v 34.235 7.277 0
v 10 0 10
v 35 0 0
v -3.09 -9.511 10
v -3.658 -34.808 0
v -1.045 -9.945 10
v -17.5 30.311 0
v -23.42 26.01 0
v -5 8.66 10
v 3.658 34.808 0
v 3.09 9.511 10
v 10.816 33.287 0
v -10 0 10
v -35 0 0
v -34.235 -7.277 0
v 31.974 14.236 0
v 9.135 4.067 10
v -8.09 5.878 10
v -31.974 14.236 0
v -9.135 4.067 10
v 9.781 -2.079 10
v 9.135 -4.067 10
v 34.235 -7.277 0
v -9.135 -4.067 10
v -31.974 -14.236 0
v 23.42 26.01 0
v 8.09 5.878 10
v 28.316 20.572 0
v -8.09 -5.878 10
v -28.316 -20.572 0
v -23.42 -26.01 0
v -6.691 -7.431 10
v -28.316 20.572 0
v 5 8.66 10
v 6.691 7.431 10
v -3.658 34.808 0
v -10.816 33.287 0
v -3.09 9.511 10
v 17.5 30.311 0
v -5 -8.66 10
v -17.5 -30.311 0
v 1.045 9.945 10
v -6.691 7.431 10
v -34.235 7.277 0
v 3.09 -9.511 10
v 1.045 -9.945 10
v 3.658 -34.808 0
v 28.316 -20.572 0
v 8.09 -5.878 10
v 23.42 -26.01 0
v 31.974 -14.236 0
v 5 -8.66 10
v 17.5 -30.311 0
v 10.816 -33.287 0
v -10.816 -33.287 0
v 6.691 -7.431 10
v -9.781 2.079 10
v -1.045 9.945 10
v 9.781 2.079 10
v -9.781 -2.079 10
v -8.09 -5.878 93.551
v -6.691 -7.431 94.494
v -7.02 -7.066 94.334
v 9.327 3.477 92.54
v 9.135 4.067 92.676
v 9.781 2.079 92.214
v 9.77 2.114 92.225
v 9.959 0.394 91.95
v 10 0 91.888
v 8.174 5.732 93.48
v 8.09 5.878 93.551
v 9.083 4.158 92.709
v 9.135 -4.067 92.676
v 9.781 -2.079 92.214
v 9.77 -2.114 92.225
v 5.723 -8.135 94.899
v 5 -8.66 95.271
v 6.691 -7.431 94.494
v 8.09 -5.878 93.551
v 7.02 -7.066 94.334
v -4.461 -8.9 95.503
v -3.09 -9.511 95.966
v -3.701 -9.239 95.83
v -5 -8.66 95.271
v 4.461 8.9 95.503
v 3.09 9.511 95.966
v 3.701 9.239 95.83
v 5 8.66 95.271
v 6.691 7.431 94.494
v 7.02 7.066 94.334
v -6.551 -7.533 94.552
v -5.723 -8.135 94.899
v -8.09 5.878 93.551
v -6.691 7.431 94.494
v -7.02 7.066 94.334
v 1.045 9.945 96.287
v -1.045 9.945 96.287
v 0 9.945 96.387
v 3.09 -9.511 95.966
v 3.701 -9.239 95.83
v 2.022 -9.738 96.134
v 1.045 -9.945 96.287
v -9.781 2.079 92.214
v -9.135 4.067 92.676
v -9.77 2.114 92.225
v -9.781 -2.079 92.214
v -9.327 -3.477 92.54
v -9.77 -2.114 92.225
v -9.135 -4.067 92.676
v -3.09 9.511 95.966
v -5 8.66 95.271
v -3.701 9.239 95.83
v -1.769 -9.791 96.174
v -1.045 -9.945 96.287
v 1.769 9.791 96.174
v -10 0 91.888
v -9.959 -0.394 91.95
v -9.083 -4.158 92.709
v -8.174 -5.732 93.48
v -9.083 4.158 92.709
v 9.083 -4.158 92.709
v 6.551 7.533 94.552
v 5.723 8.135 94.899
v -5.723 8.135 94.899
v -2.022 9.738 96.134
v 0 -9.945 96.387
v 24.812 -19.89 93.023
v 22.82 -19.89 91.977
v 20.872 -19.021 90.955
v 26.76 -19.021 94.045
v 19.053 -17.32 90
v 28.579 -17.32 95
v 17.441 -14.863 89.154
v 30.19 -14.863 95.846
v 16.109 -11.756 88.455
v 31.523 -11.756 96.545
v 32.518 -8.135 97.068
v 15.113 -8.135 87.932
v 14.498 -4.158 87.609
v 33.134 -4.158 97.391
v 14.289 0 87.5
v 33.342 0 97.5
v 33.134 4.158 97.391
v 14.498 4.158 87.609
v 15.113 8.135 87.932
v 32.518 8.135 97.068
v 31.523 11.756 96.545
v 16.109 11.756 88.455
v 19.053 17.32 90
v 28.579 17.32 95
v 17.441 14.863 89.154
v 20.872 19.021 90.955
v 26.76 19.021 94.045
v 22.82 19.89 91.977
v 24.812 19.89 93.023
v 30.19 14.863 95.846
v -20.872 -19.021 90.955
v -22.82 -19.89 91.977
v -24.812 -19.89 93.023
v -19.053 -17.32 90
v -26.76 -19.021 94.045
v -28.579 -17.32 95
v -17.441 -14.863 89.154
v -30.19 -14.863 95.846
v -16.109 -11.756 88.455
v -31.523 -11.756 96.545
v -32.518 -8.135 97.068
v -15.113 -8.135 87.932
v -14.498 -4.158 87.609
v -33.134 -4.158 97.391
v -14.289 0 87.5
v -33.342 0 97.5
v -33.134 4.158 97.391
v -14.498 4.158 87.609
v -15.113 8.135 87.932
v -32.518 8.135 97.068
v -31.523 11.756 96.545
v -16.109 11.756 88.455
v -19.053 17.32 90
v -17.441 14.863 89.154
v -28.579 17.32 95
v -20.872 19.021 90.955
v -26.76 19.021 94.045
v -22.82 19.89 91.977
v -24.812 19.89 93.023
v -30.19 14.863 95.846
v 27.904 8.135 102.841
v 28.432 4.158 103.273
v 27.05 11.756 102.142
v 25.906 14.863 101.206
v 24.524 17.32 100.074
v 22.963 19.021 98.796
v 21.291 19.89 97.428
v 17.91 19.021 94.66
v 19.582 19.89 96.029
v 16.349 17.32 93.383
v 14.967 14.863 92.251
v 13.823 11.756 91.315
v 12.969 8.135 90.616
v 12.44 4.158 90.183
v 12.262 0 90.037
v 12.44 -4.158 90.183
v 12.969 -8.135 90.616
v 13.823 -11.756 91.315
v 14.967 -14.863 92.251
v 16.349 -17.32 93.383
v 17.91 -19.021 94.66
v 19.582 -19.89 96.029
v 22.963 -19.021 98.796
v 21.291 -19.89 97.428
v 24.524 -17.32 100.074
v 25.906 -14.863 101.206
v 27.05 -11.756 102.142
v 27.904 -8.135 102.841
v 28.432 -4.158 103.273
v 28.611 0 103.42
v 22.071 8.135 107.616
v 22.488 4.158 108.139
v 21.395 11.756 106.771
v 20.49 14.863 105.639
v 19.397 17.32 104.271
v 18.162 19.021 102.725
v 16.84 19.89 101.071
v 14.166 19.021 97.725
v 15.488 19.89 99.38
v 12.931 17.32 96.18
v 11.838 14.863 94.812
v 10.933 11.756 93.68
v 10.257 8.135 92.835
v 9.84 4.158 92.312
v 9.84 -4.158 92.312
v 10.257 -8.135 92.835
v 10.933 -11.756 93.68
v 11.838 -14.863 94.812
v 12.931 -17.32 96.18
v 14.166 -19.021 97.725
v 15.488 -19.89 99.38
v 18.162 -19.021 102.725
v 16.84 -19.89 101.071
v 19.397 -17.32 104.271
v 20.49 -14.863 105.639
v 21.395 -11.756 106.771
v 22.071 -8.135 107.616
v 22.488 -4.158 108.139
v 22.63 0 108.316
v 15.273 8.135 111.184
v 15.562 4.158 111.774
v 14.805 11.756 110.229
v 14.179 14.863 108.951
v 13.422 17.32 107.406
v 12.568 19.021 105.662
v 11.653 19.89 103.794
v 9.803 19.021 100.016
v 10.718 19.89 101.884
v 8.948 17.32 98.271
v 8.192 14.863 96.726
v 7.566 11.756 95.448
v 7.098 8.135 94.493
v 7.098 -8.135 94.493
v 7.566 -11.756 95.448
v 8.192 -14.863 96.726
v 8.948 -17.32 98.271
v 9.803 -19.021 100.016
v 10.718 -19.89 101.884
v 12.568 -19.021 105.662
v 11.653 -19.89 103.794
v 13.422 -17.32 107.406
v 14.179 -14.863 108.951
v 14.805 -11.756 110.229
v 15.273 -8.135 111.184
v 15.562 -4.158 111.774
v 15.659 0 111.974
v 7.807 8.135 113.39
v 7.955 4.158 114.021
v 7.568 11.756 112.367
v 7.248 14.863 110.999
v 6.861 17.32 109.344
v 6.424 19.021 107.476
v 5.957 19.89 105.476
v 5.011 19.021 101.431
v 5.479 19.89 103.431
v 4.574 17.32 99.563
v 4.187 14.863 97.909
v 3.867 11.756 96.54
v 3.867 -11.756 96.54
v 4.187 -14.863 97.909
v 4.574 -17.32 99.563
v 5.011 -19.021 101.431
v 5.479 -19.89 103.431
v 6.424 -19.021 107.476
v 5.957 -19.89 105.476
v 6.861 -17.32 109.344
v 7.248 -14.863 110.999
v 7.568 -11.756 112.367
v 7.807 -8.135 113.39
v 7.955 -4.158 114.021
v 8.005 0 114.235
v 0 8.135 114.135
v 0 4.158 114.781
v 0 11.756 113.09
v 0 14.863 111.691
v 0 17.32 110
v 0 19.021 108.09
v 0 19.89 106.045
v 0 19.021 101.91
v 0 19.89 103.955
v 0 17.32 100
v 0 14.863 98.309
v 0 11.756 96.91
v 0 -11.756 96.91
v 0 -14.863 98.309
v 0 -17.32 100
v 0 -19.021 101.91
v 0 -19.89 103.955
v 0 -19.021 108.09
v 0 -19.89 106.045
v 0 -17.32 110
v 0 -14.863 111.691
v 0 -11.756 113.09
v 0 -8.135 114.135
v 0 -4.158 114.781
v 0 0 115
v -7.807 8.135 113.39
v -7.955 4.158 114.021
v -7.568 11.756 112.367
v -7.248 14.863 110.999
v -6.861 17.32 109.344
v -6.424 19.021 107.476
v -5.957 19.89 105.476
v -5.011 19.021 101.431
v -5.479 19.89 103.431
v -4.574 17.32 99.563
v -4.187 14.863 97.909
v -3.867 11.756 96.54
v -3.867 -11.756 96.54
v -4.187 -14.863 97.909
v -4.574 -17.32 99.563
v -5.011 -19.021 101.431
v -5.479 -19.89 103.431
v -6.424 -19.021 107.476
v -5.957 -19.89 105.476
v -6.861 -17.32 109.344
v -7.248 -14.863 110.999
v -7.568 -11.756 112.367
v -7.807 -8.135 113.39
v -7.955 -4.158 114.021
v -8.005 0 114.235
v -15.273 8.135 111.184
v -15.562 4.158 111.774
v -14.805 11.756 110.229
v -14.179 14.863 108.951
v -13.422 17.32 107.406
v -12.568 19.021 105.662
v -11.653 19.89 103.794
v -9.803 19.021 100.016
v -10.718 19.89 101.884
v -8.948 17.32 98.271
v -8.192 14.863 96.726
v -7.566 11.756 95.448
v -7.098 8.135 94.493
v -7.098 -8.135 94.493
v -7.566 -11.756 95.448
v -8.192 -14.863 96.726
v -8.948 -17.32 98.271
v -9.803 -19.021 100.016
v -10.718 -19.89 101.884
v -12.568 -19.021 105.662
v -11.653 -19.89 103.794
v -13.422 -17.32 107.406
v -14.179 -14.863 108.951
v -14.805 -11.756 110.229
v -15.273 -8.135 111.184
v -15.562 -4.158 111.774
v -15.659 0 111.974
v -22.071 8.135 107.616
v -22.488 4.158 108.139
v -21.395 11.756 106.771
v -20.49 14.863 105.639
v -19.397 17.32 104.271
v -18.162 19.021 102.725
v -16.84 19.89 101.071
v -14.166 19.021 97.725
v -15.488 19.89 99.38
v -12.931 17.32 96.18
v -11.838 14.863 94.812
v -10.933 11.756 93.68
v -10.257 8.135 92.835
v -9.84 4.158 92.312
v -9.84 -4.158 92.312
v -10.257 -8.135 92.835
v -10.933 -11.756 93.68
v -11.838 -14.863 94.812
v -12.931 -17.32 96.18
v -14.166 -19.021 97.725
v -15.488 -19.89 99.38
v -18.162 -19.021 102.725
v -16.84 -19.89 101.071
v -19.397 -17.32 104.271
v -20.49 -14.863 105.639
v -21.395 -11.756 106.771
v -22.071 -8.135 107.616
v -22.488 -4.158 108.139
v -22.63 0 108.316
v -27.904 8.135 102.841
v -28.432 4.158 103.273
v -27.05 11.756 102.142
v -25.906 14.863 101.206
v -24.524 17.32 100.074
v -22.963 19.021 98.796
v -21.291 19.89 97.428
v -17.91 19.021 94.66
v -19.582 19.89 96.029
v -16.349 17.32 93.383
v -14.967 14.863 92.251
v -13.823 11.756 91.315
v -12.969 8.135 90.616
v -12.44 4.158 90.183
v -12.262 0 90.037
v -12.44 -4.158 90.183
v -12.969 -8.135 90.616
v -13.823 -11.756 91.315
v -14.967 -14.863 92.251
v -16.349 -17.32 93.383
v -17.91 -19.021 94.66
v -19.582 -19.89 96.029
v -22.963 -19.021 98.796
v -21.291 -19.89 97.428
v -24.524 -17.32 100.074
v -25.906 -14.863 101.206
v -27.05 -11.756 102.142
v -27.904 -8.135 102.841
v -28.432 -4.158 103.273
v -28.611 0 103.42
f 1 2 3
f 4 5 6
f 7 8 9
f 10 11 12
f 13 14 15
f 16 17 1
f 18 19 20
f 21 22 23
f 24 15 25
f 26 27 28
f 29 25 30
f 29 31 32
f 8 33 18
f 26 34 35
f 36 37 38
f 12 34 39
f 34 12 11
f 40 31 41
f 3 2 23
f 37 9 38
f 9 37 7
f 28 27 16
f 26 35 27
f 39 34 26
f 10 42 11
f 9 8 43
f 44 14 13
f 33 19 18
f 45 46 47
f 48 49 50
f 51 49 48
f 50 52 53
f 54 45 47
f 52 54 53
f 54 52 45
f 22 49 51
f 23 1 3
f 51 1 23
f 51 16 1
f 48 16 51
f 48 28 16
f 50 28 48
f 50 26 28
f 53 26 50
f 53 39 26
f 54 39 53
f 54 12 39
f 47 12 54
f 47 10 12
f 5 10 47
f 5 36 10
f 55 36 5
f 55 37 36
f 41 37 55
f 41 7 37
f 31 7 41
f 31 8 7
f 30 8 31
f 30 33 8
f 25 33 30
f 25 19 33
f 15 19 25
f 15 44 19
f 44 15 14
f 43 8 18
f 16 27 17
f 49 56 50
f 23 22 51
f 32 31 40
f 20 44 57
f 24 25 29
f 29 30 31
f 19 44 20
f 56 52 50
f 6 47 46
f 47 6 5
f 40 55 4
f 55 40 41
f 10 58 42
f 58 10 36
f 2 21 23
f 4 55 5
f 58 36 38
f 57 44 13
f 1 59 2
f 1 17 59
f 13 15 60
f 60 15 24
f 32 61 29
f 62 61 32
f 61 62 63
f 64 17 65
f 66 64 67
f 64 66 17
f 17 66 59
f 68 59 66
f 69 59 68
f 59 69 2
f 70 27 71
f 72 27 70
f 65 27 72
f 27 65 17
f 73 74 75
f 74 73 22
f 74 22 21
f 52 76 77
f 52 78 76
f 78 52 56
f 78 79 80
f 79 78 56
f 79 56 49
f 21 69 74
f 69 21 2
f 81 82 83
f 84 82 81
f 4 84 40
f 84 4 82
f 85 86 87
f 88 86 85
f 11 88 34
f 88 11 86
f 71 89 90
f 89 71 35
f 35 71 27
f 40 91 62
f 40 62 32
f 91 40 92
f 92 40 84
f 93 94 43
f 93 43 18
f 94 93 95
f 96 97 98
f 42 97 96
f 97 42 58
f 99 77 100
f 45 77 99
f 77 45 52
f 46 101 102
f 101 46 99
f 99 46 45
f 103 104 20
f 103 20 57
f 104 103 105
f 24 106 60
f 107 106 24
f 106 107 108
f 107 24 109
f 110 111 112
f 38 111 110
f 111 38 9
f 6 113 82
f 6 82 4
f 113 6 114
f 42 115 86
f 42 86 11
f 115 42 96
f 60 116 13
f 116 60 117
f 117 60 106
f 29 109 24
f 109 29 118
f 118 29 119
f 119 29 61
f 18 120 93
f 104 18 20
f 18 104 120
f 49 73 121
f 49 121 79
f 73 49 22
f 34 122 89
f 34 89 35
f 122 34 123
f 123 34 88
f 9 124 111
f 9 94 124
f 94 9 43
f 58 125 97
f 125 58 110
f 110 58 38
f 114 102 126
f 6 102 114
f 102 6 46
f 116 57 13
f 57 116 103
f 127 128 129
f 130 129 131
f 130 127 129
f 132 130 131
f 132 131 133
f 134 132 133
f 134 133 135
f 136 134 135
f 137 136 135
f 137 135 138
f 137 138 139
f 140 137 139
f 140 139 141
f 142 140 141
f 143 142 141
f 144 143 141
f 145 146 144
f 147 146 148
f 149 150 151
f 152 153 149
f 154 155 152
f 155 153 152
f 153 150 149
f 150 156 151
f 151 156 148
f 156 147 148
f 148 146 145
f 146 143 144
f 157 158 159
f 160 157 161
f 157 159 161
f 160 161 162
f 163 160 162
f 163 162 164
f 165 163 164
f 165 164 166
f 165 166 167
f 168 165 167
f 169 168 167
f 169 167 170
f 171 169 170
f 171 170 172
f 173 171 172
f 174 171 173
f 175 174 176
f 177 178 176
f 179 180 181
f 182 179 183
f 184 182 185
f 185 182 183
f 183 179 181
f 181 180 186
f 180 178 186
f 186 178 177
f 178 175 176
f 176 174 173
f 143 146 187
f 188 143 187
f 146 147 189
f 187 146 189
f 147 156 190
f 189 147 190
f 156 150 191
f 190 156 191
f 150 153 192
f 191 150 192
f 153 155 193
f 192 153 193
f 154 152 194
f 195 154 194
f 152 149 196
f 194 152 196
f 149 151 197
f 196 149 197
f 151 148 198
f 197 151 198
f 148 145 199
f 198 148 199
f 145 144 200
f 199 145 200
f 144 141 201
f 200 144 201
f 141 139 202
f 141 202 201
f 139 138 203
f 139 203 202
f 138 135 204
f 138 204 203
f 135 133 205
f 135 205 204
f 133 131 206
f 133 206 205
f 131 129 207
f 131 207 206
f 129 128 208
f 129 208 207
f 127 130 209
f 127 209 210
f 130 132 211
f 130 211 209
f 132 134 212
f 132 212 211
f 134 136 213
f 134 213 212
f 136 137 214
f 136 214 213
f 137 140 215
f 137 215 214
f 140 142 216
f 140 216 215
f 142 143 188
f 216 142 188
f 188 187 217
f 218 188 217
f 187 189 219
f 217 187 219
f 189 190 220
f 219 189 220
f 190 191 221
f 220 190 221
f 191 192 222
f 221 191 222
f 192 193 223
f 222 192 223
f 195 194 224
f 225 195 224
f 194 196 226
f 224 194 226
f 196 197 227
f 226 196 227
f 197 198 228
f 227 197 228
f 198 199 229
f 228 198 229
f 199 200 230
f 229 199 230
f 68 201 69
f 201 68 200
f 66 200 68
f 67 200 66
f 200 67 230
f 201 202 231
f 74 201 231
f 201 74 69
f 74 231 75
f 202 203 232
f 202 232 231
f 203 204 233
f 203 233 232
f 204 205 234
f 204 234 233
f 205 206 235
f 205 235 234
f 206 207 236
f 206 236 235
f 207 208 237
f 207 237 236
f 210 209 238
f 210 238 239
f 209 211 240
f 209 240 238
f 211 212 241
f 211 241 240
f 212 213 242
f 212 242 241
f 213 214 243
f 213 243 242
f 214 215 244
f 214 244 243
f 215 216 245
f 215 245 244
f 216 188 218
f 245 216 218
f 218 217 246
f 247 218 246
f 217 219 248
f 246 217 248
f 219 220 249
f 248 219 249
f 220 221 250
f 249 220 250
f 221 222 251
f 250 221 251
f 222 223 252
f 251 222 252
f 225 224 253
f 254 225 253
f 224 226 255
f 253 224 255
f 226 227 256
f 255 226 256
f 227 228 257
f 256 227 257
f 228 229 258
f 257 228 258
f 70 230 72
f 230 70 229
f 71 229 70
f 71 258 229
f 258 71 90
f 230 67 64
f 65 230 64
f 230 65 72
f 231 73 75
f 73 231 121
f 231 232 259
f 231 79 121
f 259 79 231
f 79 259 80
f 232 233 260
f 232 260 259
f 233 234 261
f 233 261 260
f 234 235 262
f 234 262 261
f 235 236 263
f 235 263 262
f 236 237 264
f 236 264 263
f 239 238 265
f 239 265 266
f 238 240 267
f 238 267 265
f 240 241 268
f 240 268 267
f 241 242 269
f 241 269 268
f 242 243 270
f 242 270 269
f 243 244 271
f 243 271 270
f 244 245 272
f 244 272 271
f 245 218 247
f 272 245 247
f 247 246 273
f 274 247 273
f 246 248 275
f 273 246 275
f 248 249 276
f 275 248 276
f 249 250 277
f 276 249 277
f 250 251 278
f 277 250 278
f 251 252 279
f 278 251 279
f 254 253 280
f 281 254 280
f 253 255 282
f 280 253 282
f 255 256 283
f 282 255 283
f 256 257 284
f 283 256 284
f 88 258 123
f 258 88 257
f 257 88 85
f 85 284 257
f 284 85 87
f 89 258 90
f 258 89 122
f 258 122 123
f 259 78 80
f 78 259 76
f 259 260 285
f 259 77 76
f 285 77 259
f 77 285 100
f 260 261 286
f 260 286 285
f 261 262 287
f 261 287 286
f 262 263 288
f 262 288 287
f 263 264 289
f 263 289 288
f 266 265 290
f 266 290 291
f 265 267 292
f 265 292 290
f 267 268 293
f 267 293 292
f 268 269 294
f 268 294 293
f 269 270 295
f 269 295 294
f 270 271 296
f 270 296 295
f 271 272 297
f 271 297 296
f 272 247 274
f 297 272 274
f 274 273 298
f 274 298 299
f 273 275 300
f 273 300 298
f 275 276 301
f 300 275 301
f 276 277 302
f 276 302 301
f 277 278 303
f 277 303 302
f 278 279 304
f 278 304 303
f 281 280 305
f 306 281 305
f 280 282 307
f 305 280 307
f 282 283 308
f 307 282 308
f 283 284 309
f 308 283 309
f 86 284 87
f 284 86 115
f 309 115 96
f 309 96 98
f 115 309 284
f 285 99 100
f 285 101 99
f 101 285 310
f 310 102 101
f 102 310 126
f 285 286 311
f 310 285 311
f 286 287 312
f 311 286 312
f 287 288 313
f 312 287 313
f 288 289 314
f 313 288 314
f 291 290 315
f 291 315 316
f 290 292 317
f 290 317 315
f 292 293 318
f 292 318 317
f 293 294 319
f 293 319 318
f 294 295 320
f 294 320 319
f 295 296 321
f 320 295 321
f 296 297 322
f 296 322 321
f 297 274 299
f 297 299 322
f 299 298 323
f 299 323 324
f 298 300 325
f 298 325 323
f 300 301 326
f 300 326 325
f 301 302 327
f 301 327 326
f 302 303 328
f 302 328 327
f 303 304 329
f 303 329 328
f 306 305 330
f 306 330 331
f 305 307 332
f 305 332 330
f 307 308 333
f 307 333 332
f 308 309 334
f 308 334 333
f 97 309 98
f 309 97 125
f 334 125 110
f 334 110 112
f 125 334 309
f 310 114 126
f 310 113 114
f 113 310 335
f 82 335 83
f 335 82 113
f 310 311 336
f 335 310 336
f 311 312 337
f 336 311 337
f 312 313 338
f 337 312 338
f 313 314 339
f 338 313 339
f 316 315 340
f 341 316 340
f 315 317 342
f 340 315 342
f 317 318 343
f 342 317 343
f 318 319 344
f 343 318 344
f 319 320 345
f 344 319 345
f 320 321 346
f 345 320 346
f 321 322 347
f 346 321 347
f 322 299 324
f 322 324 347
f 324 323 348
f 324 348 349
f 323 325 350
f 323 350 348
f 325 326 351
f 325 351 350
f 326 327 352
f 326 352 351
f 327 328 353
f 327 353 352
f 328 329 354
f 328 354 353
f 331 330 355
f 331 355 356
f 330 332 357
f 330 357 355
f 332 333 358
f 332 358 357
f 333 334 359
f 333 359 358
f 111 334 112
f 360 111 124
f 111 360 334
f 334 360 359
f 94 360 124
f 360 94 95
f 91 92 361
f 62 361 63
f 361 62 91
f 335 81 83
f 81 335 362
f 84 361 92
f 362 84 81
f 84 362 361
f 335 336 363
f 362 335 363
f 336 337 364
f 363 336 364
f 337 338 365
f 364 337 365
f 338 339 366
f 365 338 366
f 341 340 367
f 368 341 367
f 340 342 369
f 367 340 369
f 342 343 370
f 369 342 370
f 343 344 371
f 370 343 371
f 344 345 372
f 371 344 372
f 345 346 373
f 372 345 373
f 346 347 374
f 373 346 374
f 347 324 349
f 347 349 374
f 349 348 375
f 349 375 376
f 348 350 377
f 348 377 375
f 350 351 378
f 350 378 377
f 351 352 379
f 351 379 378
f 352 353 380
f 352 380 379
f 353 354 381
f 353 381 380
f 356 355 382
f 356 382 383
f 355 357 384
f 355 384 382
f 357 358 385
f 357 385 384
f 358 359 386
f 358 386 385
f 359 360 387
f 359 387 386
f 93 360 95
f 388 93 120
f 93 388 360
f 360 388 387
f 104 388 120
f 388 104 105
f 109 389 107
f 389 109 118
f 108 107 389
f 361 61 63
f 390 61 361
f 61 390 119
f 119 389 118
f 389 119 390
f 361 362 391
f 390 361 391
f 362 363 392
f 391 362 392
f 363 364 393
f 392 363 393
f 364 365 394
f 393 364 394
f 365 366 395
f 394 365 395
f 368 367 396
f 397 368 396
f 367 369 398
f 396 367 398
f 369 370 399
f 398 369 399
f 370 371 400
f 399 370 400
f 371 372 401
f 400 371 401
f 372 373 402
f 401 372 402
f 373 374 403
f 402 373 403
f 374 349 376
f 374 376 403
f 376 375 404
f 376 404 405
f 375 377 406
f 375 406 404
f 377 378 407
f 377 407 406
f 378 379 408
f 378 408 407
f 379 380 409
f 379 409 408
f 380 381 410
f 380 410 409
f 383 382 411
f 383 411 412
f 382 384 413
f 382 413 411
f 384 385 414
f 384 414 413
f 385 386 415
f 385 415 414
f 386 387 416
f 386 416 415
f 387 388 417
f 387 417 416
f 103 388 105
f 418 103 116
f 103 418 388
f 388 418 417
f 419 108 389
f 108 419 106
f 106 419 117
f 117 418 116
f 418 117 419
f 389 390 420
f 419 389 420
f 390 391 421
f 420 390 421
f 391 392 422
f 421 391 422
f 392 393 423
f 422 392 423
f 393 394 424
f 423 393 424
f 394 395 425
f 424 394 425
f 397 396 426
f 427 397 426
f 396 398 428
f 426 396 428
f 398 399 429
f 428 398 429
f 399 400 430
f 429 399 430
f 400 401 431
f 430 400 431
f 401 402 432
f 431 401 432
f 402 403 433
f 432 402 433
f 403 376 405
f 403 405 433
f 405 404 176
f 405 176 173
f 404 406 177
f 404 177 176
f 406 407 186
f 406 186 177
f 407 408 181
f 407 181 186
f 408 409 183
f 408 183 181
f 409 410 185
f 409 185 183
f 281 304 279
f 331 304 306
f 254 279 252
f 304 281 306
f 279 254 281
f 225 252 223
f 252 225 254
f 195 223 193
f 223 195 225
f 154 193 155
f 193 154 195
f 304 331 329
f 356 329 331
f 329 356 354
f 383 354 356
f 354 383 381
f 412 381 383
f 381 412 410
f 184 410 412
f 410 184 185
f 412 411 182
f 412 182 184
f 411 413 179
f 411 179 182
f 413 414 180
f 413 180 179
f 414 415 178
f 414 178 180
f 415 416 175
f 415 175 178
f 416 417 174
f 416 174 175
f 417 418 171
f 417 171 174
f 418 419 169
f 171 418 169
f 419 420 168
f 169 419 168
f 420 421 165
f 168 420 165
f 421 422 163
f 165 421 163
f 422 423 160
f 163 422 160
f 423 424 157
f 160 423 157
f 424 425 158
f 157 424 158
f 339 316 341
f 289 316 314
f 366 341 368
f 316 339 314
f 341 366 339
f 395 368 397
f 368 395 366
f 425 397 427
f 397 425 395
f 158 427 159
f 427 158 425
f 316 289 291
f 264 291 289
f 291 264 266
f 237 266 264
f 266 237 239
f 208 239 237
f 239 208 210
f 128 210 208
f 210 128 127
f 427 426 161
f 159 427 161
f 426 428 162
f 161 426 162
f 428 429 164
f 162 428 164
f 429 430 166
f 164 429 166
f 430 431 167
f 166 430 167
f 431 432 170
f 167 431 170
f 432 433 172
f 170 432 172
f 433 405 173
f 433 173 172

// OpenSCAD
union(){
    cylinder(10,35,10,[0,0]);
    cylinder(100,10,10,[0,0]);
    translate([0,0,80])
        scale([1.10,1])
        rotate([90,-30,0])
        rotate_extrude(angle=120)
        translate([25,0,0])
        scale([0.5,1])
        circle(20);
};
